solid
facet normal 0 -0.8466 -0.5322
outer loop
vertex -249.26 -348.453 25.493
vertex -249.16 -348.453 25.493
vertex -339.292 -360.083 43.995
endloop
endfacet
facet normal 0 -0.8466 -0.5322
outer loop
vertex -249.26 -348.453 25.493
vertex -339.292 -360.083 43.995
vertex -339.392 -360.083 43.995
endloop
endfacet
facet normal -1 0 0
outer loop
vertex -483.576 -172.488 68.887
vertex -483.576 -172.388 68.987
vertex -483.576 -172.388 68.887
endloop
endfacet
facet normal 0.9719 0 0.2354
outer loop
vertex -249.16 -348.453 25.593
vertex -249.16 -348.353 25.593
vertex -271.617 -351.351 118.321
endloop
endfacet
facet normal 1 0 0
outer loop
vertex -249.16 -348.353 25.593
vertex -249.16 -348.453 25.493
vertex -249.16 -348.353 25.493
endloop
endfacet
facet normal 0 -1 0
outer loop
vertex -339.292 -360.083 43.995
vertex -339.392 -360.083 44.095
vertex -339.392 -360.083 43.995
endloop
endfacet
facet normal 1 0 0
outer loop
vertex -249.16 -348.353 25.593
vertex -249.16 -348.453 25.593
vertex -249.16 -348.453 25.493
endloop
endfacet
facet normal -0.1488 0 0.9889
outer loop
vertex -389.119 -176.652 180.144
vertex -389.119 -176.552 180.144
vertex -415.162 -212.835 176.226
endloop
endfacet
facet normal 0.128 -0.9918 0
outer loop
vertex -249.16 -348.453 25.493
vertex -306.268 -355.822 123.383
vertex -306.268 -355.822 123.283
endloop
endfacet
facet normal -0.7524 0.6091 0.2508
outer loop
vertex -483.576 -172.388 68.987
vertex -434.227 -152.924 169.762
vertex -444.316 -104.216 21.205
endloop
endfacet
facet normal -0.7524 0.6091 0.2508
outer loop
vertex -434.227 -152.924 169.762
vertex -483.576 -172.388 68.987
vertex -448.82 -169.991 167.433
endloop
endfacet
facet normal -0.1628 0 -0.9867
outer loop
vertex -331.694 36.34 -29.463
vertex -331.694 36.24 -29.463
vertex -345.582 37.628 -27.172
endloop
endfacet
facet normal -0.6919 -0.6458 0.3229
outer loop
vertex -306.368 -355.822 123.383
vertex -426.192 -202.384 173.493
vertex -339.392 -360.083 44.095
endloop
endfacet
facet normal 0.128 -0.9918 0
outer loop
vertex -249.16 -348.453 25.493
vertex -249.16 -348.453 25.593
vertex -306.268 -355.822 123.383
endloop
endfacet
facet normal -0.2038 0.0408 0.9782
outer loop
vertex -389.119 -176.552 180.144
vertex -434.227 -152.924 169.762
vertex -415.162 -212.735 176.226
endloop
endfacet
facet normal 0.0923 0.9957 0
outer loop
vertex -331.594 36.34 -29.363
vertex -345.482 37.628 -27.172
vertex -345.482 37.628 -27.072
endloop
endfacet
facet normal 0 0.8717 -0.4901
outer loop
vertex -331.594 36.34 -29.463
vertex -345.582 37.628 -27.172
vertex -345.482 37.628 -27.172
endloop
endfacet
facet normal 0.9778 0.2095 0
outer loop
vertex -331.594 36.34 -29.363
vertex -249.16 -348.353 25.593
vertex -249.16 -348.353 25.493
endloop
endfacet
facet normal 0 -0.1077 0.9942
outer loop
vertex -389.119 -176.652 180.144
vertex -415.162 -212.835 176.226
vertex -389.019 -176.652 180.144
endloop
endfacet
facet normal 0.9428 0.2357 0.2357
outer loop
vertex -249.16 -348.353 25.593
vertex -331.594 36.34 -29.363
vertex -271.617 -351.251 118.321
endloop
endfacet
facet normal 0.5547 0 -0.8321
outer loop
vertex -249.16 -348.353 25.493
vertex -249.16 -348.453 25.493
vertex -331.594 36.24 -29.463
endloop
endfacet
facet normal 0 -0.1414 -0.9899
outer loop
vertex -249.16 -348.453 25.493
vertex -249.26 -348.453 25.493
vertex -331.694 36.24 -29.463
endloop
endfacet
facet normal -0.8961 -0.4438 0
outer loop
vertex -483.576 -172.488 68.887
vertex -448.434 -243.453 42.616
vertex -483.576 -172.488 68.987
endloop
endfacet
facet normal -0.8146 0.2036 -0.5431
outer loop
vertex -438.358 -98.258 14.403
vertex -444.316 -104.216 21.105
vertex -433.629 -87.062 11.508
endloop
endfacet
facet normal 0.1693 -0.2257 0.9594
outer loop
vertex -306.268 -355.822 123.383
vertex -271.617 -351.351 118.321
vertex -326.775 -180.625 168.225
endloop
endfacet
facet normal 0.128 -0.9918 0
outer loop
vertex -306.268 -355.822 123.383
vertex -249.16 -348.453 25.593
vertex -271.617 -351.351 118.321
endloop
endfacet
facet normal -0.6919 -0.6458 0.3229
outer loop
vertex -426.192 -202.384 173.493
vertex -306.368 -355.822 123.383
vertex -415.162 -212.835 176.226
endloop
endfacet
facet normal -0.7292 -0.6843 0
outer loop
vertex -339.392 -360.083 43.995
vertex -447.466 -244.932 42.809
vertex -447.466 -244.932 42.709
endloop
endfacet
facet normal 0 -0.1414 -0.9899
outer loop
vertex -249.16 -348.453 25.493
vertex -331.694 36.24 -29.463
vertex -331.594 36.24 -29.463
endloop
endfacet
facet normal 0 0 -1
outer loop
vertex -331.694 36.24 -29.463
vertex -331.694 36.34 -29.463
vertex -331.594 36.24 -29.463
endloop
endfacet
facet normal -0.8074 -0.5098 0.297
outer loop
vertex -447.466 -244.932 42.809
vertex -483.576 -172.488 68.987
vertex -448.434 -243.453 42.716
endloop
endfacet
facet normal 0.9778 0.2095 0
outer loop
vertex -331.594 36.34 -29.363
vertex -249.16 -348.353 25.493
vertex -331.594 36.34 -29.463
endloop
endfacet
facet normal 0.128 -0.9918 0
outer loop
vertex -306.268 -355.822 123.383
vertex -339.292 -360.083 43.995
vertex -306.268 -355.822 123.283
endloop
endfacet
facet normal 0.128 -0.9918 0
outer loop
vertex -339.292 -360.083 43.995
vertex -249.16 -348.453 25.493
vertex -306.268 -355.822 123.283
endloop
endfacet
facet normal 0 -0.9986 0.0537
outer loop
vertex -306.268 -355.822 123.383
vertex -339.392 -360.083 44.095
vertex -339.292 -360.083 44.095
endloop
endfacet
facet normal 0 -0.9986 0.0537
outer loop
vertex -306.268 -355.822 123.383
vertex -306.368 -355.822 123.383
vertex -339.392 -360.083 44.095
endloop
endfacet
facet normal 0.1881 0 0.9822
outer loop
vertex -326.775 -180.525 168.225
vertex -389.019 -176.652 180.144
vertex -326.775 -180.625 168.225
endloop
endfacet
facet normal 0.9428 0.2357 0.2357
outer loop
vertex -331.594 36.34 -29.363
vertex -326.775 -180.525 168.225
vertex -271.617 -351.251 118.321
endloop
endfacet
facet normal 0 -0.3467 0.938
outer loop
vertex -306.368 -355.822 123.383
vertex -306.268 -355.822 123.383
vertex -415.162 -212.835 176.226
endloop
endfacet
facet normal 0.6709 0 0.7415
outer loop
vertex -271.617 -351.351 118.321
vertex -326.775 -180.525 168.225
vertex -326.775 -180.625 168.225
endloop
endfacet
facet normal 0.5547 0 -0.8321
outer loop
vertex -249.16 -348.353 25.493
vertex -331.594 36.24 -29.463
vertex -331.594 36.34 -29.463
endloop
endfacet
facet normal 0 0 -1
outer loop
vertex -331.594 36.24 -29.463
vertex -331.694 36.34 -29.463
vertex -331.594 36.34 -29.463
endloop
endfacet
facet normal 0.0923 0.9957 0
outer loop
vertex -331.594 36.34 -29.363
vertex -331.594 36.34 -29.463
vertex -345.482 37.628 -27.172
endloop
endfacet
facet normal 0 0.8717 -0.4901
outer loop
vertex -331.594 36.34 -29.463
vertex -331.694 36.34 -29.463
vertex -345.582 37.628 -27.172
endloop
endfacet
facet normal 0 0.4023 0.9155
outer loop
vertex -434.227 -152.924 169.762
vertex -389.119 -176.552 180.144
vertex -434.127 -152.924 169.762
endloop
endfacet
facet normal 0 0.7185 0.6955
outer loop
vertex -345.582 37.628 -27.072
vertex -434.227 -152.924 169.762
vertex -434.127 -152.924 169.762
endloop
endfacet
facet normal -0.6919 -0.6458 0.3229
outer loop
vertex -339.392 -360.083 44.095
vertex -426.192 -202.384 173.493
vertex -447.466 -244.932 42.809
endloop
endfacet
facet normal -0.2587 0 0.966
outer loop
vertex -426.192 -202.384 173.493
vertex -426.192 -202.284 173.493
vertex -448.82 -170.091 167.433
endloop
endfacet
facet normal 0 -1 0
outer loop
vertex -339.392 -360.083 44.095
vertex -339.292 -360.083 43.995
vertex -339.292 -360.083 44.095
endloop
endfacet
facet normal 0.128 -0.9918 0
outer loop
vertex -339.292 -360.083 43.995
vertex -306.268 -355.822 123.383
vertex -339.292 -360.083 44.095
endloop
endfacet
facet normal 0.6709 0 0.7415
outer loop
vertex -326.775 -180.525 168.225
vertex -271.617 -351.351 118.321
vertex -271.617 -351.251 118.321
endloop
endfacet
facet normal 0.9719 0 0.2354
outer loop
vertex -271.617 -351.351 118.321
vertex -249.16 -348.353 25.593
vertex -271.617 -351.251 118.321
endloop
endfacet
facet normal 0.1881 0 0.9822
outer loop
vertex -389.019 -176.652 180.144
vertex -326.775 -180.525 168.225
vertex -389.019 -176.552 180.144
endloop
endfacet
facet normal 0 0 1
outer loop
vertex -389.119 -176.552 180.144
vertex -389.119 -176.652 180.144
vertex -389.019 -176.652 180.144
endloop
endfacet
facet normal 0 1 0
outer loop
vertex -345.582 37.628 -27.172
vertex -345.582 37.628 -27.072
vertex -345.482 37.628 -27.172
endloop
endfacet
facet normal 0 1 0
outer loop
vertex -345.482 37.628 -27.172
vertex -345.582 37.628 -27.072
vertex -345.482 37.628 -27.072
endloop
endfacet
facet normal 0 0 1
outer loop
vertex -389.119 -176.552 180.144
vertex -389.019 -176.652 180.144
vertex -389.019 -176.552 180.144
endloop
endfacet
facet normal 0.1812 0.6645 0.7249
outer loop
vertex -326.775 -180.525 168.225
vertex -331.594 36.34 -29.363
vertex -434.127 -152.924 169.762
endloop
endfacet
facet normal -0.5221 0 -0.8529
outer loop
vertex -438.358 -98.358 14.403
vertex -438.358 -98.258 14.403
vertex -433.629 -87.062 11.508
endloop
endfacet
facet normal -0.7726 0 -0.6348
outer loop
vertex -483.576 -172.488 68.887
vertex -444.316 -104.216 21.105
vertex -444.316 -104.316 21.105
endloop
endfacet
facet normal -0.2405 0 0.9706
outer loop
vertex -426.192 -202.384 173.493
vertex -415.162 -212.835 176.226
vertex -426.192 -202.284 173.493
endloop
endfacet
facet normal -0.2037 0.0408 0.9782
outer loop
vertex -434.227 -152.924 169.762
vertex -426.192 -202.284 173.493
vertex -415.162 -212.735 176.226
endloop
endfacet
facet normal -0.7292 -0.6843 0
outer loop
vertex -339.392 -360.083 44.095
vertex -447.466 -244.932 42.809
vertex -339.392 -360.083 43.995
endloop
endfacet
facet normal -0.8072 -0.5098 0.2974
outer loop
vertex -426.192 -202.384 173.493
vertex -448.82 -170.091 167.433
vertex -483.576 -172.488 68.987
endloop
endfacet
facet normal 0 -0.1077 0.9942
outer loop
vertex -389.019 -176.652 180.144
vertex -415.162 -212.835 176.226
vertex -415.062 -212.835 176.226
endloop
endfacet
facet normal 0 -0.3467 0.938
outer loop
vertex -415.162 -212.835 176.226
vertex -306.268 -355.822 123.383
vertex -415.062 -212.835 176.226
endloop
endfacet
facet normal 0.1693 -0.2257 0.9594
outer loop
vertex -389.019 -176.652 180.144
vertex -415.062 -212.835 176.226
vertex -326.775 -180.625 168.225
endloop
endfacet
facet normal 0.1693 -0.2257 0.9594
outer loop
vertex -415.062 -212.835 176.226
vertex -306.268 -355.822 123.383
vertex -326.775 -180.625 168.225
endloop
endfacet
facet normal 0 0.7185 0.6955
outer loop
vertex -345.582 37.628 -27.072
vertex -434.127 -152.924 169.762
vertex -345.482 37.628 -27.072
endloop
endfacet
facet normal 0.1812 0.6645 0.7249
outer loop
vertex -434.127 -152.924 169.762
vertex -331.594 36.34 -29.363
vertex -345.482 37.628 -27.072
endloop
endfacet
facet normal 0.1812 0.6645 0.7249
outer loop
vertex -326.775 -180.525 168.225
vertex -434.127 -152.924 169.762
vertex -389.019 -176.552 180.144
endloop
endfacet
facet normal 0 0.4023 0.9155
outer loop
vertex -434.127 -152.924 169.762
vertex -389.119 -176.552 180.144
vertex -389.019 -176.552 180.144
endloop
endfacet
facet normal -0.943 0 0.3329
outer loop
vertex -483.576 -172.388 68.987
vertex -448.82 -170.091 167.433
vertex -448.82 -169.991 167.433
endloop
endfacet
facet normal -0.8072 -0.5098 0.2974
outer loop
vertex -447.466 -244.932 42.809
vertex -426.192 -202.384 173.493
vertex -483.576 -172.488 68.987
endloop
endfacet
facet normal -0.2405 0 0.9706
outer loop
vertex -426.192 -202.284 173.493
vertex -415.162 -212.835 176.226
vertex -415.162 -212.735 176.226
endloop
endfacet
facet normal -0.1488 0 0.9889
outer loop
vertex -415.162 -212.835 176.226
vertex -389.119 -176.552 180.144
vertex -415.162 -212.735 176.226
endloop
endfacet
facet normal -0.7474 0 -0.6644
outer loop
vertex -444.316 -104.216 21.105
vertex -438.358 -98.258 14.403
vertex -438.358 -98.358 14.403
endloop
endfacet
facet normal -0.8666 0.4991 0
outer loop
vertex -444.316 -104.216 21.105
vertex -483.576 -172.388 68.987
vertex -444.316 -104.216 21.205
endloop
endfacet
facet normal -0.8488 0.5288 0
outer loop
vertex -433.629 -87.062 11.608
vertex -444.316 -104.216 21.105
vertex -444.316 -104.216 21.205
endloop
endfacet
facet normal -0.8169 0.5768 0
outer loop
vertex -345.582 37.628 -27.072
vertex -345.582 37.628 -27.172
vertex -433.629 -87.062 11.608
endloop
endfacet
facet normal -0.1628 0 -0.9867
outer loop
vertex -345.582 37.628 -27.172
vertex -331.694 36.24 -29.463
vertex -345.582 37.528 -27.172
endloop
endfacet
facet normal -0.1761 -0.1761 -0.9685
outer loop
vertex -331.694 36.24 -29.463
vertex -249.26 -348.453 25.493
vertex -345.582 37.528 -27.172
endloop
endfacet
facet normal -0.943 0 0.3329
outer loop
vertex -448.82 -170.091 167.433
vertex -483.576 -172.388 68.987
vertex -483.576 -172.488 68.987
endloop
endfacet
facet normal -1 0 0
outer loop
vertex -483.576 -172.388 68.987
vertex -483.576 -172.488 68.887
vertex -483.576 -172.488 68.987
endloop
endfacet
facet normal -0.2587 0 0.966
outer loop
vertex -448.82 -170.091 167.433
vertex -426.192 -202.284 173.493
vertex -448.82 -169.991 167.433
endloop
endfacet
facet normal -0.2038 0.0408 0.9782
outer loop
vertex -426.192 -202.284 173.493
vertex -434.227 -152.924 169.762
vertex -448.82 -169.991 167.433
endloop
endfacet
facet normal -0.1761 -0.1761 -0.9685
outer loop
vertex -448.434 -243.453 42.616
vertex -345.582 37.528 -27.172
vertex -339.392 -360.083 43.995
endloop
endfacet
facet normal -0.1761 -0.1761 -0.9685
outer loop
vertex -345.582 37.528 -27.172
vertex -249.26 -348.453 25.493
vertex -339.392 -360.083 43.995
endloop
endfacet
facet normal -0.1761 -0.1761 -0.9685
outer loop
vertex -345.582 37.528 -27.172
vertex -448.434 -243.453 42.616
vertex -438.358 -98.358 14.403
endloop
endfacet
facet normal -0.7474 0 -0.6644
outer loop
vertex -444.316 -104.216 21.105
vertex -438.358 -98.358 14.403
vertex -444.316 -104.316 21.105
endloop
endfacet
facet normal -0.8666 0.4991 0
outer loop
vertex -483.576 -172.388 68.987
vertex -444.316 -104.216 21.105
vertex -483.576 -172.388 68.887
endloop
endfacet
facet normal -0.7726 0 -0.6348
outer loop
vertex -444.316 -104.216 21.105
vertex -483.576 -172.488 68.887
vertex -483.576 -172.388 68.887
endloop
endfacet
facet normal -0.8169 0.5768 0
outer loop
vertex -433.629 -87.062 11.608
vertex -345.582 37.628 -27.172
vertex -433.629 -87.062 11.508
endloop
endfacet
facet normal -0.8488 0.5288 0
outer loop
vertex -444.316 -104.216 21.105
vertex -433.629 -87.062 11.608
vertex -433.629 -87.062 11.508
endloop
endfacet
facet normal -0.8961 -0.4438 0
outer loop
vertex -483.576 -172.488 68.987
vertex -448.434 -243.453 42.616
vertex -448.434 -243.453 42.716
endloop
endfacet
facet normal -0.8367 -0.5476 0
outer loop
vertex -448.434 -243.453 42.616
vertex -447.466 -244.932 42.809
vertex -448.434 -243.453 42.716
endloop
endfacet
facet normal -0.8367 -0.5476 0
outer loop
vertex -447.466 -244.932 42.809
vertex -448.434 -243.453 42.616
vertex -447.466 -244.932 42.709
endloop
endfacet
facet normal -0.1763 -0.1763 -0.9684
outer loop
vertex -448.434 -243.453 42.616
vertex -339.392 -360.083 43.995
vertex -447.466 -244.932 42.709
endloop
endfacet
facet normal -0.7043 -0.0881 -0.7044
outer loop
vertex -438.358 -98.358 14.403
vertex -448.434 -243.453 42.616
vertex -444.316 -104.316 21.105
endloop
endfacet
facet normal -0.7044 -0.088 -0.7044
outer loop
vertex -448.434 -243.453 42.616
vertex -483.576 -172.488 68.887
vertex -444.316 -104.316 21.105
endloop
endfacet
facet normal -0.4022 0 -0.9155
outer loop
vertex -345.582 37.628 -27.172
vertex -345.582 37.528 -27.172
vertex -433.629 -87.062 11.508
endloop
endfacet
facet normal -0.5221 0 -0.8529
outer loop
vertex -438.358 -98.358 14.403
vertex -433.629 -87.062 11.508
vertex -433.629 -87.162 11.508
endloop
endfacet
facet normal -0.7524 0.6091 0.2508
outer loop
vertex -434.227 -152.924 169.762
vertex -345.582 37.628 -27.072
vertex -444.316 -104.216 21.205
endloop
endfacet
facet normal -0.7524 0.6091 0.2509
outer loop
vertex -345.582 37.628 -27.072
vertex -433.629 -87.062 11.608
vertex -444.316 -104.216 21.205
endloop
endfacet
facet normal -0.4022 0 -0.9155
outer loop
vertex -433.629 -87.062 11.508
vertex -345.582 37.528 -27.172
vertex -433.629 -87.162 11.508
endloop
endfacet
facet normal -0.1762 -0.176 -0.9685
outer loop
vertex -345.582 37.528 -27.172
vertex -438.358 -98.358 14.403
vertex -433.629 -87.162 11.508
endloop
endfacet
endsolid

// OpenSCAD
hull(){ translate([-249.260089686,-348.452914798,25.4932735426])cube(0.1,0.1,0.1);
translate([-339.391576917,-360.082784118,43.99533837])cube(0.1,0.1,0.1);
translate([-271.717484516,-351.350643163,118.220581229])cube(0.1,0.1,0.1);
translate([-306.367603235,-355.821626224,123.283312048])cube(0.1,0.1,0.1);
translate([-326.875,-180.625,168.125])cube(0.1,0.1,0.1);
translate([-331.694214876,36.2396694215,-29.4628099174])cube(0.1,0.1,0.1);
translate([-345.58210252,37.5282363162,-27.1720243267])cube(0.1,0.1,0.1);
translate([-415.16163222,-212.835188129,176.126126126])cube(0.1,0.1,0.1);
translate([-434.227208976,-153.023842917,169.661991585])cube(0.1,0.1,0.1);
translate([-389.118942731,-176.651982379,180.044052863])cube(0.1,0.1,0.1);
translate([-433.628922237,-87.1623465211,11.5075034106])cube(0.1,0.1,0.1);
translate([-438.358208955,-98.3582089552,14.4029850746])cube(0.1,0.1,0.1);
translate([-444.315789474,-104.315789474,21.1052631579])cube(0.1,0.1,0.1);
translate([-447.466019417,-244.932038835,42.7087378641])cube(0.1,0.1,0.1);
translate([-448.434247871,-243.453169347,42.6158940397])cube(0.1,0.1,0.1);
translate([-483.575665277,-172.487976916,68.8866623918])cube(0.1,0.1,0.1);
translate([-448.819829674,-170.091022736,167.332994765])cube(0.1,0.1,0.1);
translate([-426.191889219,-202.383778437,173.392680514])cube(0.1,0.1,0.1); }
